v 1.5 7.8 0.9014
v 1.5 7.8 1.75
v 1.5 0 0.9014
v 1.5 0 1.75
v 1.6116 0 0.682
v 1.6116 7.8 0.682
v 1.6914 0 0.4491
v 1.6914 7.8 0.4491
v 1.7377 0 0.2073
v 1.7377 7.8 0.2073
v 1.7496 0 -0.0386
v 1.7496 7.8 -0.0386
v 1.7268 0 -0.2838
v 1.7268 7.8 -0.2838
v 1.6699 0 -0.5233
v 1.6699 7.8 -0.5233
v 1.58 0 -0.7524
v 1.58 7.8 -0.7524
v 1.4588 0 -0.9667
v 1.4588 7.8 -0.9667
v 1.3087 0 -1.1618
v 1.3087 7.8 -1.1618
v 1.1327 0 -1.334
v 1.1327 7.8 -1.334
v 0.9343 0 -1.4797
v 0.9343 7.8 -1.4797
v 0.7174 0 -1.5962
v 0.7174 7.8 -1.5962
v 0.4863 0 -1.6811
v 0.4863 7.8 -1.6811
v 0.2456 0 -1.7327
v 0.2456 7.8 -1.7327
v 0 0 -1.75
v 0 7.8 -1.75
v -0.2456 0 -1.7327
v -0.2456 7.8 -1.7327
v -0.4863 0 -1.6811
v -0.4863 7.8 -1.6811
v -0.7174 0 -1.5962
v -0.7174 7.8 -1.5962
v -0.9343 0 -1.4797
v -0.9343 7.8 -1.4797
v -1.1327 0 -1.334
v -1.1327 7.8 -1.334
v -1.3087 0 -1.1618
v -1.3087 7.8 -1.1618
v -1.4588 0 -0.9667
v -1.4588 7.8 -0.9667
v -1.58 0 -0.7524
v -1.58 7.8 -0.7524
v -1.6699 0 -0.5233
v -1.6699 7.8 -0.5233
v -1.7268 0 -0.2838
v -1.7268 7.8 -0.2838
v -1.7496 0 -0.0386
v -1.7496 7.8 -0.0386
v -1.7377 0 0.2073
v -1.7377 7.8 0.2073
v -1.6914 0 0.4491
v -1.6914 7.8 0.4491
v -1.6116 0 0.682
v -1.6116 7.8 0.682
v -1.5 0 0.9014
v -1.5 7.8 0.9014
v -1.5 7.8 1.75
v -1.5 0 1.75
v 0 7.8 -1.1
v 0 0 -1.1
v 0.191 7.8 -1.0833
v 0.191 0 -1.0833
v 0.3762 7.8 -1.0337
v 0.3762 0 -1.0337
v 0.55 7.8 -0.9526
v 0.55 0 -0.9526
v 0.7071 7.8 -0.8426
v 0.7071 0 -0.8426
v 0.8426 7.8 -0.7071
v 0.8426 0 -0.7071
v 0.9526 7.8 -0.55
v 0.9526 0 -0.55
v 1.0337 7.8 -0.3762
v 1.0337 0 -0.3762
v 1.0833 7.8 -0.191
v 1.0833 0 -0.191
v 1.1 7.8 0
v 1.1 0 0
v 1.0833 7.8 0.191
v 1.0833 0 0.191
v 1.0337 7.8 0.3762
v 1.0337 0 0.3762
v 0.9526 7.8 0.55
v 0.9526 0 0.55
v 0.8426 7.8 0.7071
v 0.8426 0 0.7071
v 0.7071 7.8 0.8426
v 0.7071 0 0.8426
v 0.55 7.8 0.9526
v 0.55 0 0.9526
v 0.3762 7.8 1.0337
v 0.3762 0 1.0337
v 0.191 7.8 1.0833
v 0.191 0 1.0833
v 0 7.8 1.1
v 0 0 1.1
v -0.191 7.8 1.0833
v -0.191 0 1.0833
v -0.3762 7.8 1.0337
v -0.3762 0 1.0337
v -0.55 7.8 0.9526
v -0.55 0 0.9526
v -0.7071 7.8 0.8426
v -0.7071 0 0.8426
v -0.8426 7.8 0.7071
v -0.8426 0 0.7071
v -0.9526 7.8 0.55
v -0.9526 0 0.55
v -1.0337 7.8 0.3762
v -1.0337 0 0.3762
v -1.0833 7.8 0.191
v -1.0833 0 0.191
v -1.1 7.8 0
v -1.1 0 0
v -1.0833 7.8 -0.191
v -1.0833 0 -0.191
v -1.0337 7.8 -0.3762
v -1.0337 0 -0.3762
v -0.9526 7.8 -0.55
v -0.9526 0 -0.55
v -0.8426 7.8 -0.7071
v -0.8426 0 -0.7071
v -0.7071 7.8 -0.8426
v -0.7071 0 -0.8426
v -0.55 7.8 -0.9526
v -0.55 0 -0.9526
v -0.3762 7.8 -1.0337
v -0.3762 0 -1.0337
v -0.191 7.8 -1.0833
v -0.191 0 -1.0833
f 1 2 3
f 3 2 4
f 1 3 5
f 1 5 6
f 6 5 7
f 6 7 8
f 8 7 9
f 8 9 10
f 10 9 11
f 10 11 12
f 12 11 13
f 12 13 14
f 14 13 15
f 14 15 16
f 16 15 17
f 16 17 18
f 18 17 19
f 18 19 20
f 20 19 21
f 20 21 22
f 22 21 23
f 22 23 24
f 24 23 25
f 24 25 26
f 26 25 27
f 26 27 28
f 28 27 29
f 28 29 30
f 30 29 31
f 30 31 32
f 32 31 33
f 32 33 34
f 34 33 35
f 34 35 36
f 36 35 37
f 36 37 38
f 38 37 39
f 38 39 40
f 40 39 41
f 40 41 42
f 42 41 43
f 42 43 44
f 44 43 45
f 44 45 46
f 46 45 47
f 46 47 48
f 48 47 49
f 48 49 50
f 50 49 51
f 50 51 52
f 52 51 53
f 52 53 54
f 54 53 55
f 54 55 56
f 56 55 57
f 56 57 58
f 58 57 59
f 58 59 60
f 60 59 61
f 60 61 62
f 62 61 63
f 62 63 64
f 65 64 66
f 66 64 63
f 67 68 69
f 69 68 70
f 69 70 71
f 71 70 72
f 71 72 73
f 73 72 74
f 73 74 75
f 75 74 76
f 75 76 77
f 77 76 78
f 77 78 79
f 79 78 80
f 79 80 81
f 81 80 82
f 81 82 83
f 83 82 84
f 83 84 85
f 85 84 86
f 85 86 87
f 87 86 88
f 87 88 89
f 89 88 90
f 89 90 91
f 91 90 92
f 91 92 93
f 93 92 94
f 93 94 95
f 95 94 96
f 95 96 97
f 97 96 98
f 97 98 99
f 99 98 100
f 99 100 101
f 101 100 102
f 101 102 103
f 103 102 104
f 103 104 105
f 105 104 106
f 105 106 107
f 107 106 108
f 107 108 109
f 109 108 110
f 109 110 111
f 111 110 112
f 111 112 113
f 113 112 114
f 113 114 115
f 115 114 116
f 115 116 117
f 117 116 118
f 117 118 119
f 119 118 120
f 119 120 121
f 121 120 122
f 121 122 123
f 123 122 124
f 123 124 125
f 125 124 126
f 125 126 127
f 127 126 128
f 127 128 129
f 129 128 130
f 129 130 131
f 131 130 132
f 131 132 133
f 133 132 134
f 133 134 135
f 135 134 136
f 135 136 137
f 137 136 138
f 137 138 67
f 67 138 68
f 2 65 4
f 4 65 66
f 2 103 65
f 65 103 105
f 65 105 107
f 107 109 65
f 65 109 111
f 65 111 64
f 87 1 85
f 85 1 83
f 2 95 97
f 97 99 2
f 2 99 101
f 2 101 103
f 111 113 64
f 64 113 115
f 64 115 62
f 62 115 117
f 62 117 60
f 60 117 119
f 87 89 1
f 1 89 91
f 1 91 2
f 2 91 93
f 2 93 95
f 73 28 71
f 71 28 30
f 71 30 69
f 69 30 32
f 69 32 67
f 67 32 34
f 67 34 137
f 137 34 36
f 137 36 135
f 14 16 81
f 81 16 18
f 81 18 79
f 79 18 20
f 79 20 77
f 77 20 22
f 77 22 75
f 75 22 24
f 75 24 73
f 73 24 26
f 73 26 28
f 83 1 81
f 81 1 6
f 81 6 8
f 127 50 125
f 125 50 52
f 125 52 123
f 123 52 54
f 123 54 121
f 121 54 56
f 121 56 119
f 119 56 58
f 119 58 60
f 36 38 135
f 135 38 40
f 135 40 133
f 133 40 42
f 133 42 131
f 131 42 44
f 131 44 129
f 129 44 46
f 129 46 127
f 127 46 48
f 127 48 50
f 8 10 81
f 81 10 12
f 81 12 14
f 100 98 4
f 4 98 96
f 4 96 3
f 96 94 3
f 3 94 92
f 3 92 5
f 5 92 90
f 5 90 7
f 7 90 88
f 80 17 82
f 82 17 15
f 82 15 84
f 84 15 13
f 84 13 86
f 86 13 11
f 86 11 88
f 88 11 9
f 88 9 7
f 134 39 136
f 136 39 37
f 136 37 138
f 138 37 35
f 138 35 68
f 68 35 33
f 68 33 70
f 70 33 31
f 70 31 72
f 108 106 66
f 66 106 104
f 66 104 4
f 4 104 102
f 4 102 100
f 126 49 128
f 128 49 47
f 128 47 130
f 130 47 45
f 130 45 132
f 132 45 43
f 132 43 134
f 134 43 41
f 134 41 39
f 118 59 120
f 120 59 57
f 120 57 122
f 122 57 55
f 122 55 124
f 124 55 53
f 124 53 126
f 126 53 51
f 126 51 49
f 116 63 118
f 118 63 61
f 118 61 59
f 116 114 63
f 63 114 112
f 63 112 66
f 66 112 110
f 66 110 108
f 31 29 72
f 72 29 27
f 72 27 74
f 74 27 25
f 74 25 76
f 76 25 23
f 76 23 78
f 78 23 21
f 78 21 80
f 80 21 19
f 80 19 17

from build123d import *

# Parameters (mm, degrees)
SKETCH1_R           = 1.1
BOSS_EXTRUDE1_DEPTH = 7.8


with BuildPart() as part:
    # Sketch1 → Boss-Extrude1 (new body)
    # profile 1 of 5: a face of its own
    with BuildSketch(Plane(origin=(0, 0, 0), x_dir=(1, 0, 0), z_dir=(0, 1, 0))):
        with BuildLine():
            ThreePointArc((-1.5, -0.901387819), (-0.861705088, -1.523142916), (0, -1.75))
            ThreePointArc((0, -1.75), (0.861705088, -1.523142916), (1.5, -0.901387819))
            Line((1.5, -0.901387819), (1.5, 0.901387819))
            ThreePointArc((1.5, 0.901387819), (0.861705088, 1.523142916), (0, 1.75))
            ThreePointArc((0, 1.75), (-0.861705088, 1.523142916), (-1.5, 0.901387819))
            Line((-1.5, 0.901387819), (-1.5, -0.901387819))
        make_face()
        with Locations(Location((0, 0, 0), (0, 0, 270))):
            Circle(SKETCH1_R, mode=Mode.SUBTRACT)
    # profile 2 of 5: a face of its own
    with BuildSketch(Plane(origin=(0, 0, 0), x_dir=(1, 0, 0), z_dir=(0, 1, 0))):
        with BuildLine():
            ThreePointArc((-1.5, 0.901387819), (-1.75, 0), (-1.5, -0.901387819))
            Line((-1.5, -0.901387819), (-1.5, 0.901387819))
        make_face()
    # profile 3 of 5: a face of its own
    with BuildSketch(Plane(origin=(0, 0, 0), x_dir=(1, 0, 0), z_dir=(0, 1, 0))):
        with BuildLine():
            Line((1.5, 0.901387819), (1.5, -0.901387819))
            ThreePointArc((1.5, -0.901387819), (1.686342195, -0.467707173), (1.75, 0))
            ThreePointArc((1.75, 0), (1.686342195, 0.467707173), (1.5, 0.901387819))
        make_face()
    # profile 4 of 5: a face of its own
    with BuildSketch(Plane(origin=(0, 0, 0), x_dir=(1, 0, 0), z_dir=(0, 1, 0))):
        with BuildLine():
            Line((0, -1.75), (1.5, -1.75))
            Line((1.5, -1.75), (1.5, -0.901387819))
            ThreePointArc((1.5, -0.901387819), (0.861705088, -1.523142916), (0, -1.75))
        make_face()
    # profile 5 of 5: a face of its own
    with BuildSketch(Plane(origin=(0, 0, 0), x_dir=(1, 0, 0), z_dir=(0, 1, 0))):
        with BuildLine():
            Line((-1.5, -1.75), (0, -1.75))
            ThreePointArc((0, -1.75), (-0.861705088, -1.523142916), (-1.5, -0.901387819))
            Line((-1.5, -0.901387819), (-1.5, -1.75))
        make_face()
    extrude(amount=BOSS_EXTRUDE1_DEPTH)


solid = part.part
